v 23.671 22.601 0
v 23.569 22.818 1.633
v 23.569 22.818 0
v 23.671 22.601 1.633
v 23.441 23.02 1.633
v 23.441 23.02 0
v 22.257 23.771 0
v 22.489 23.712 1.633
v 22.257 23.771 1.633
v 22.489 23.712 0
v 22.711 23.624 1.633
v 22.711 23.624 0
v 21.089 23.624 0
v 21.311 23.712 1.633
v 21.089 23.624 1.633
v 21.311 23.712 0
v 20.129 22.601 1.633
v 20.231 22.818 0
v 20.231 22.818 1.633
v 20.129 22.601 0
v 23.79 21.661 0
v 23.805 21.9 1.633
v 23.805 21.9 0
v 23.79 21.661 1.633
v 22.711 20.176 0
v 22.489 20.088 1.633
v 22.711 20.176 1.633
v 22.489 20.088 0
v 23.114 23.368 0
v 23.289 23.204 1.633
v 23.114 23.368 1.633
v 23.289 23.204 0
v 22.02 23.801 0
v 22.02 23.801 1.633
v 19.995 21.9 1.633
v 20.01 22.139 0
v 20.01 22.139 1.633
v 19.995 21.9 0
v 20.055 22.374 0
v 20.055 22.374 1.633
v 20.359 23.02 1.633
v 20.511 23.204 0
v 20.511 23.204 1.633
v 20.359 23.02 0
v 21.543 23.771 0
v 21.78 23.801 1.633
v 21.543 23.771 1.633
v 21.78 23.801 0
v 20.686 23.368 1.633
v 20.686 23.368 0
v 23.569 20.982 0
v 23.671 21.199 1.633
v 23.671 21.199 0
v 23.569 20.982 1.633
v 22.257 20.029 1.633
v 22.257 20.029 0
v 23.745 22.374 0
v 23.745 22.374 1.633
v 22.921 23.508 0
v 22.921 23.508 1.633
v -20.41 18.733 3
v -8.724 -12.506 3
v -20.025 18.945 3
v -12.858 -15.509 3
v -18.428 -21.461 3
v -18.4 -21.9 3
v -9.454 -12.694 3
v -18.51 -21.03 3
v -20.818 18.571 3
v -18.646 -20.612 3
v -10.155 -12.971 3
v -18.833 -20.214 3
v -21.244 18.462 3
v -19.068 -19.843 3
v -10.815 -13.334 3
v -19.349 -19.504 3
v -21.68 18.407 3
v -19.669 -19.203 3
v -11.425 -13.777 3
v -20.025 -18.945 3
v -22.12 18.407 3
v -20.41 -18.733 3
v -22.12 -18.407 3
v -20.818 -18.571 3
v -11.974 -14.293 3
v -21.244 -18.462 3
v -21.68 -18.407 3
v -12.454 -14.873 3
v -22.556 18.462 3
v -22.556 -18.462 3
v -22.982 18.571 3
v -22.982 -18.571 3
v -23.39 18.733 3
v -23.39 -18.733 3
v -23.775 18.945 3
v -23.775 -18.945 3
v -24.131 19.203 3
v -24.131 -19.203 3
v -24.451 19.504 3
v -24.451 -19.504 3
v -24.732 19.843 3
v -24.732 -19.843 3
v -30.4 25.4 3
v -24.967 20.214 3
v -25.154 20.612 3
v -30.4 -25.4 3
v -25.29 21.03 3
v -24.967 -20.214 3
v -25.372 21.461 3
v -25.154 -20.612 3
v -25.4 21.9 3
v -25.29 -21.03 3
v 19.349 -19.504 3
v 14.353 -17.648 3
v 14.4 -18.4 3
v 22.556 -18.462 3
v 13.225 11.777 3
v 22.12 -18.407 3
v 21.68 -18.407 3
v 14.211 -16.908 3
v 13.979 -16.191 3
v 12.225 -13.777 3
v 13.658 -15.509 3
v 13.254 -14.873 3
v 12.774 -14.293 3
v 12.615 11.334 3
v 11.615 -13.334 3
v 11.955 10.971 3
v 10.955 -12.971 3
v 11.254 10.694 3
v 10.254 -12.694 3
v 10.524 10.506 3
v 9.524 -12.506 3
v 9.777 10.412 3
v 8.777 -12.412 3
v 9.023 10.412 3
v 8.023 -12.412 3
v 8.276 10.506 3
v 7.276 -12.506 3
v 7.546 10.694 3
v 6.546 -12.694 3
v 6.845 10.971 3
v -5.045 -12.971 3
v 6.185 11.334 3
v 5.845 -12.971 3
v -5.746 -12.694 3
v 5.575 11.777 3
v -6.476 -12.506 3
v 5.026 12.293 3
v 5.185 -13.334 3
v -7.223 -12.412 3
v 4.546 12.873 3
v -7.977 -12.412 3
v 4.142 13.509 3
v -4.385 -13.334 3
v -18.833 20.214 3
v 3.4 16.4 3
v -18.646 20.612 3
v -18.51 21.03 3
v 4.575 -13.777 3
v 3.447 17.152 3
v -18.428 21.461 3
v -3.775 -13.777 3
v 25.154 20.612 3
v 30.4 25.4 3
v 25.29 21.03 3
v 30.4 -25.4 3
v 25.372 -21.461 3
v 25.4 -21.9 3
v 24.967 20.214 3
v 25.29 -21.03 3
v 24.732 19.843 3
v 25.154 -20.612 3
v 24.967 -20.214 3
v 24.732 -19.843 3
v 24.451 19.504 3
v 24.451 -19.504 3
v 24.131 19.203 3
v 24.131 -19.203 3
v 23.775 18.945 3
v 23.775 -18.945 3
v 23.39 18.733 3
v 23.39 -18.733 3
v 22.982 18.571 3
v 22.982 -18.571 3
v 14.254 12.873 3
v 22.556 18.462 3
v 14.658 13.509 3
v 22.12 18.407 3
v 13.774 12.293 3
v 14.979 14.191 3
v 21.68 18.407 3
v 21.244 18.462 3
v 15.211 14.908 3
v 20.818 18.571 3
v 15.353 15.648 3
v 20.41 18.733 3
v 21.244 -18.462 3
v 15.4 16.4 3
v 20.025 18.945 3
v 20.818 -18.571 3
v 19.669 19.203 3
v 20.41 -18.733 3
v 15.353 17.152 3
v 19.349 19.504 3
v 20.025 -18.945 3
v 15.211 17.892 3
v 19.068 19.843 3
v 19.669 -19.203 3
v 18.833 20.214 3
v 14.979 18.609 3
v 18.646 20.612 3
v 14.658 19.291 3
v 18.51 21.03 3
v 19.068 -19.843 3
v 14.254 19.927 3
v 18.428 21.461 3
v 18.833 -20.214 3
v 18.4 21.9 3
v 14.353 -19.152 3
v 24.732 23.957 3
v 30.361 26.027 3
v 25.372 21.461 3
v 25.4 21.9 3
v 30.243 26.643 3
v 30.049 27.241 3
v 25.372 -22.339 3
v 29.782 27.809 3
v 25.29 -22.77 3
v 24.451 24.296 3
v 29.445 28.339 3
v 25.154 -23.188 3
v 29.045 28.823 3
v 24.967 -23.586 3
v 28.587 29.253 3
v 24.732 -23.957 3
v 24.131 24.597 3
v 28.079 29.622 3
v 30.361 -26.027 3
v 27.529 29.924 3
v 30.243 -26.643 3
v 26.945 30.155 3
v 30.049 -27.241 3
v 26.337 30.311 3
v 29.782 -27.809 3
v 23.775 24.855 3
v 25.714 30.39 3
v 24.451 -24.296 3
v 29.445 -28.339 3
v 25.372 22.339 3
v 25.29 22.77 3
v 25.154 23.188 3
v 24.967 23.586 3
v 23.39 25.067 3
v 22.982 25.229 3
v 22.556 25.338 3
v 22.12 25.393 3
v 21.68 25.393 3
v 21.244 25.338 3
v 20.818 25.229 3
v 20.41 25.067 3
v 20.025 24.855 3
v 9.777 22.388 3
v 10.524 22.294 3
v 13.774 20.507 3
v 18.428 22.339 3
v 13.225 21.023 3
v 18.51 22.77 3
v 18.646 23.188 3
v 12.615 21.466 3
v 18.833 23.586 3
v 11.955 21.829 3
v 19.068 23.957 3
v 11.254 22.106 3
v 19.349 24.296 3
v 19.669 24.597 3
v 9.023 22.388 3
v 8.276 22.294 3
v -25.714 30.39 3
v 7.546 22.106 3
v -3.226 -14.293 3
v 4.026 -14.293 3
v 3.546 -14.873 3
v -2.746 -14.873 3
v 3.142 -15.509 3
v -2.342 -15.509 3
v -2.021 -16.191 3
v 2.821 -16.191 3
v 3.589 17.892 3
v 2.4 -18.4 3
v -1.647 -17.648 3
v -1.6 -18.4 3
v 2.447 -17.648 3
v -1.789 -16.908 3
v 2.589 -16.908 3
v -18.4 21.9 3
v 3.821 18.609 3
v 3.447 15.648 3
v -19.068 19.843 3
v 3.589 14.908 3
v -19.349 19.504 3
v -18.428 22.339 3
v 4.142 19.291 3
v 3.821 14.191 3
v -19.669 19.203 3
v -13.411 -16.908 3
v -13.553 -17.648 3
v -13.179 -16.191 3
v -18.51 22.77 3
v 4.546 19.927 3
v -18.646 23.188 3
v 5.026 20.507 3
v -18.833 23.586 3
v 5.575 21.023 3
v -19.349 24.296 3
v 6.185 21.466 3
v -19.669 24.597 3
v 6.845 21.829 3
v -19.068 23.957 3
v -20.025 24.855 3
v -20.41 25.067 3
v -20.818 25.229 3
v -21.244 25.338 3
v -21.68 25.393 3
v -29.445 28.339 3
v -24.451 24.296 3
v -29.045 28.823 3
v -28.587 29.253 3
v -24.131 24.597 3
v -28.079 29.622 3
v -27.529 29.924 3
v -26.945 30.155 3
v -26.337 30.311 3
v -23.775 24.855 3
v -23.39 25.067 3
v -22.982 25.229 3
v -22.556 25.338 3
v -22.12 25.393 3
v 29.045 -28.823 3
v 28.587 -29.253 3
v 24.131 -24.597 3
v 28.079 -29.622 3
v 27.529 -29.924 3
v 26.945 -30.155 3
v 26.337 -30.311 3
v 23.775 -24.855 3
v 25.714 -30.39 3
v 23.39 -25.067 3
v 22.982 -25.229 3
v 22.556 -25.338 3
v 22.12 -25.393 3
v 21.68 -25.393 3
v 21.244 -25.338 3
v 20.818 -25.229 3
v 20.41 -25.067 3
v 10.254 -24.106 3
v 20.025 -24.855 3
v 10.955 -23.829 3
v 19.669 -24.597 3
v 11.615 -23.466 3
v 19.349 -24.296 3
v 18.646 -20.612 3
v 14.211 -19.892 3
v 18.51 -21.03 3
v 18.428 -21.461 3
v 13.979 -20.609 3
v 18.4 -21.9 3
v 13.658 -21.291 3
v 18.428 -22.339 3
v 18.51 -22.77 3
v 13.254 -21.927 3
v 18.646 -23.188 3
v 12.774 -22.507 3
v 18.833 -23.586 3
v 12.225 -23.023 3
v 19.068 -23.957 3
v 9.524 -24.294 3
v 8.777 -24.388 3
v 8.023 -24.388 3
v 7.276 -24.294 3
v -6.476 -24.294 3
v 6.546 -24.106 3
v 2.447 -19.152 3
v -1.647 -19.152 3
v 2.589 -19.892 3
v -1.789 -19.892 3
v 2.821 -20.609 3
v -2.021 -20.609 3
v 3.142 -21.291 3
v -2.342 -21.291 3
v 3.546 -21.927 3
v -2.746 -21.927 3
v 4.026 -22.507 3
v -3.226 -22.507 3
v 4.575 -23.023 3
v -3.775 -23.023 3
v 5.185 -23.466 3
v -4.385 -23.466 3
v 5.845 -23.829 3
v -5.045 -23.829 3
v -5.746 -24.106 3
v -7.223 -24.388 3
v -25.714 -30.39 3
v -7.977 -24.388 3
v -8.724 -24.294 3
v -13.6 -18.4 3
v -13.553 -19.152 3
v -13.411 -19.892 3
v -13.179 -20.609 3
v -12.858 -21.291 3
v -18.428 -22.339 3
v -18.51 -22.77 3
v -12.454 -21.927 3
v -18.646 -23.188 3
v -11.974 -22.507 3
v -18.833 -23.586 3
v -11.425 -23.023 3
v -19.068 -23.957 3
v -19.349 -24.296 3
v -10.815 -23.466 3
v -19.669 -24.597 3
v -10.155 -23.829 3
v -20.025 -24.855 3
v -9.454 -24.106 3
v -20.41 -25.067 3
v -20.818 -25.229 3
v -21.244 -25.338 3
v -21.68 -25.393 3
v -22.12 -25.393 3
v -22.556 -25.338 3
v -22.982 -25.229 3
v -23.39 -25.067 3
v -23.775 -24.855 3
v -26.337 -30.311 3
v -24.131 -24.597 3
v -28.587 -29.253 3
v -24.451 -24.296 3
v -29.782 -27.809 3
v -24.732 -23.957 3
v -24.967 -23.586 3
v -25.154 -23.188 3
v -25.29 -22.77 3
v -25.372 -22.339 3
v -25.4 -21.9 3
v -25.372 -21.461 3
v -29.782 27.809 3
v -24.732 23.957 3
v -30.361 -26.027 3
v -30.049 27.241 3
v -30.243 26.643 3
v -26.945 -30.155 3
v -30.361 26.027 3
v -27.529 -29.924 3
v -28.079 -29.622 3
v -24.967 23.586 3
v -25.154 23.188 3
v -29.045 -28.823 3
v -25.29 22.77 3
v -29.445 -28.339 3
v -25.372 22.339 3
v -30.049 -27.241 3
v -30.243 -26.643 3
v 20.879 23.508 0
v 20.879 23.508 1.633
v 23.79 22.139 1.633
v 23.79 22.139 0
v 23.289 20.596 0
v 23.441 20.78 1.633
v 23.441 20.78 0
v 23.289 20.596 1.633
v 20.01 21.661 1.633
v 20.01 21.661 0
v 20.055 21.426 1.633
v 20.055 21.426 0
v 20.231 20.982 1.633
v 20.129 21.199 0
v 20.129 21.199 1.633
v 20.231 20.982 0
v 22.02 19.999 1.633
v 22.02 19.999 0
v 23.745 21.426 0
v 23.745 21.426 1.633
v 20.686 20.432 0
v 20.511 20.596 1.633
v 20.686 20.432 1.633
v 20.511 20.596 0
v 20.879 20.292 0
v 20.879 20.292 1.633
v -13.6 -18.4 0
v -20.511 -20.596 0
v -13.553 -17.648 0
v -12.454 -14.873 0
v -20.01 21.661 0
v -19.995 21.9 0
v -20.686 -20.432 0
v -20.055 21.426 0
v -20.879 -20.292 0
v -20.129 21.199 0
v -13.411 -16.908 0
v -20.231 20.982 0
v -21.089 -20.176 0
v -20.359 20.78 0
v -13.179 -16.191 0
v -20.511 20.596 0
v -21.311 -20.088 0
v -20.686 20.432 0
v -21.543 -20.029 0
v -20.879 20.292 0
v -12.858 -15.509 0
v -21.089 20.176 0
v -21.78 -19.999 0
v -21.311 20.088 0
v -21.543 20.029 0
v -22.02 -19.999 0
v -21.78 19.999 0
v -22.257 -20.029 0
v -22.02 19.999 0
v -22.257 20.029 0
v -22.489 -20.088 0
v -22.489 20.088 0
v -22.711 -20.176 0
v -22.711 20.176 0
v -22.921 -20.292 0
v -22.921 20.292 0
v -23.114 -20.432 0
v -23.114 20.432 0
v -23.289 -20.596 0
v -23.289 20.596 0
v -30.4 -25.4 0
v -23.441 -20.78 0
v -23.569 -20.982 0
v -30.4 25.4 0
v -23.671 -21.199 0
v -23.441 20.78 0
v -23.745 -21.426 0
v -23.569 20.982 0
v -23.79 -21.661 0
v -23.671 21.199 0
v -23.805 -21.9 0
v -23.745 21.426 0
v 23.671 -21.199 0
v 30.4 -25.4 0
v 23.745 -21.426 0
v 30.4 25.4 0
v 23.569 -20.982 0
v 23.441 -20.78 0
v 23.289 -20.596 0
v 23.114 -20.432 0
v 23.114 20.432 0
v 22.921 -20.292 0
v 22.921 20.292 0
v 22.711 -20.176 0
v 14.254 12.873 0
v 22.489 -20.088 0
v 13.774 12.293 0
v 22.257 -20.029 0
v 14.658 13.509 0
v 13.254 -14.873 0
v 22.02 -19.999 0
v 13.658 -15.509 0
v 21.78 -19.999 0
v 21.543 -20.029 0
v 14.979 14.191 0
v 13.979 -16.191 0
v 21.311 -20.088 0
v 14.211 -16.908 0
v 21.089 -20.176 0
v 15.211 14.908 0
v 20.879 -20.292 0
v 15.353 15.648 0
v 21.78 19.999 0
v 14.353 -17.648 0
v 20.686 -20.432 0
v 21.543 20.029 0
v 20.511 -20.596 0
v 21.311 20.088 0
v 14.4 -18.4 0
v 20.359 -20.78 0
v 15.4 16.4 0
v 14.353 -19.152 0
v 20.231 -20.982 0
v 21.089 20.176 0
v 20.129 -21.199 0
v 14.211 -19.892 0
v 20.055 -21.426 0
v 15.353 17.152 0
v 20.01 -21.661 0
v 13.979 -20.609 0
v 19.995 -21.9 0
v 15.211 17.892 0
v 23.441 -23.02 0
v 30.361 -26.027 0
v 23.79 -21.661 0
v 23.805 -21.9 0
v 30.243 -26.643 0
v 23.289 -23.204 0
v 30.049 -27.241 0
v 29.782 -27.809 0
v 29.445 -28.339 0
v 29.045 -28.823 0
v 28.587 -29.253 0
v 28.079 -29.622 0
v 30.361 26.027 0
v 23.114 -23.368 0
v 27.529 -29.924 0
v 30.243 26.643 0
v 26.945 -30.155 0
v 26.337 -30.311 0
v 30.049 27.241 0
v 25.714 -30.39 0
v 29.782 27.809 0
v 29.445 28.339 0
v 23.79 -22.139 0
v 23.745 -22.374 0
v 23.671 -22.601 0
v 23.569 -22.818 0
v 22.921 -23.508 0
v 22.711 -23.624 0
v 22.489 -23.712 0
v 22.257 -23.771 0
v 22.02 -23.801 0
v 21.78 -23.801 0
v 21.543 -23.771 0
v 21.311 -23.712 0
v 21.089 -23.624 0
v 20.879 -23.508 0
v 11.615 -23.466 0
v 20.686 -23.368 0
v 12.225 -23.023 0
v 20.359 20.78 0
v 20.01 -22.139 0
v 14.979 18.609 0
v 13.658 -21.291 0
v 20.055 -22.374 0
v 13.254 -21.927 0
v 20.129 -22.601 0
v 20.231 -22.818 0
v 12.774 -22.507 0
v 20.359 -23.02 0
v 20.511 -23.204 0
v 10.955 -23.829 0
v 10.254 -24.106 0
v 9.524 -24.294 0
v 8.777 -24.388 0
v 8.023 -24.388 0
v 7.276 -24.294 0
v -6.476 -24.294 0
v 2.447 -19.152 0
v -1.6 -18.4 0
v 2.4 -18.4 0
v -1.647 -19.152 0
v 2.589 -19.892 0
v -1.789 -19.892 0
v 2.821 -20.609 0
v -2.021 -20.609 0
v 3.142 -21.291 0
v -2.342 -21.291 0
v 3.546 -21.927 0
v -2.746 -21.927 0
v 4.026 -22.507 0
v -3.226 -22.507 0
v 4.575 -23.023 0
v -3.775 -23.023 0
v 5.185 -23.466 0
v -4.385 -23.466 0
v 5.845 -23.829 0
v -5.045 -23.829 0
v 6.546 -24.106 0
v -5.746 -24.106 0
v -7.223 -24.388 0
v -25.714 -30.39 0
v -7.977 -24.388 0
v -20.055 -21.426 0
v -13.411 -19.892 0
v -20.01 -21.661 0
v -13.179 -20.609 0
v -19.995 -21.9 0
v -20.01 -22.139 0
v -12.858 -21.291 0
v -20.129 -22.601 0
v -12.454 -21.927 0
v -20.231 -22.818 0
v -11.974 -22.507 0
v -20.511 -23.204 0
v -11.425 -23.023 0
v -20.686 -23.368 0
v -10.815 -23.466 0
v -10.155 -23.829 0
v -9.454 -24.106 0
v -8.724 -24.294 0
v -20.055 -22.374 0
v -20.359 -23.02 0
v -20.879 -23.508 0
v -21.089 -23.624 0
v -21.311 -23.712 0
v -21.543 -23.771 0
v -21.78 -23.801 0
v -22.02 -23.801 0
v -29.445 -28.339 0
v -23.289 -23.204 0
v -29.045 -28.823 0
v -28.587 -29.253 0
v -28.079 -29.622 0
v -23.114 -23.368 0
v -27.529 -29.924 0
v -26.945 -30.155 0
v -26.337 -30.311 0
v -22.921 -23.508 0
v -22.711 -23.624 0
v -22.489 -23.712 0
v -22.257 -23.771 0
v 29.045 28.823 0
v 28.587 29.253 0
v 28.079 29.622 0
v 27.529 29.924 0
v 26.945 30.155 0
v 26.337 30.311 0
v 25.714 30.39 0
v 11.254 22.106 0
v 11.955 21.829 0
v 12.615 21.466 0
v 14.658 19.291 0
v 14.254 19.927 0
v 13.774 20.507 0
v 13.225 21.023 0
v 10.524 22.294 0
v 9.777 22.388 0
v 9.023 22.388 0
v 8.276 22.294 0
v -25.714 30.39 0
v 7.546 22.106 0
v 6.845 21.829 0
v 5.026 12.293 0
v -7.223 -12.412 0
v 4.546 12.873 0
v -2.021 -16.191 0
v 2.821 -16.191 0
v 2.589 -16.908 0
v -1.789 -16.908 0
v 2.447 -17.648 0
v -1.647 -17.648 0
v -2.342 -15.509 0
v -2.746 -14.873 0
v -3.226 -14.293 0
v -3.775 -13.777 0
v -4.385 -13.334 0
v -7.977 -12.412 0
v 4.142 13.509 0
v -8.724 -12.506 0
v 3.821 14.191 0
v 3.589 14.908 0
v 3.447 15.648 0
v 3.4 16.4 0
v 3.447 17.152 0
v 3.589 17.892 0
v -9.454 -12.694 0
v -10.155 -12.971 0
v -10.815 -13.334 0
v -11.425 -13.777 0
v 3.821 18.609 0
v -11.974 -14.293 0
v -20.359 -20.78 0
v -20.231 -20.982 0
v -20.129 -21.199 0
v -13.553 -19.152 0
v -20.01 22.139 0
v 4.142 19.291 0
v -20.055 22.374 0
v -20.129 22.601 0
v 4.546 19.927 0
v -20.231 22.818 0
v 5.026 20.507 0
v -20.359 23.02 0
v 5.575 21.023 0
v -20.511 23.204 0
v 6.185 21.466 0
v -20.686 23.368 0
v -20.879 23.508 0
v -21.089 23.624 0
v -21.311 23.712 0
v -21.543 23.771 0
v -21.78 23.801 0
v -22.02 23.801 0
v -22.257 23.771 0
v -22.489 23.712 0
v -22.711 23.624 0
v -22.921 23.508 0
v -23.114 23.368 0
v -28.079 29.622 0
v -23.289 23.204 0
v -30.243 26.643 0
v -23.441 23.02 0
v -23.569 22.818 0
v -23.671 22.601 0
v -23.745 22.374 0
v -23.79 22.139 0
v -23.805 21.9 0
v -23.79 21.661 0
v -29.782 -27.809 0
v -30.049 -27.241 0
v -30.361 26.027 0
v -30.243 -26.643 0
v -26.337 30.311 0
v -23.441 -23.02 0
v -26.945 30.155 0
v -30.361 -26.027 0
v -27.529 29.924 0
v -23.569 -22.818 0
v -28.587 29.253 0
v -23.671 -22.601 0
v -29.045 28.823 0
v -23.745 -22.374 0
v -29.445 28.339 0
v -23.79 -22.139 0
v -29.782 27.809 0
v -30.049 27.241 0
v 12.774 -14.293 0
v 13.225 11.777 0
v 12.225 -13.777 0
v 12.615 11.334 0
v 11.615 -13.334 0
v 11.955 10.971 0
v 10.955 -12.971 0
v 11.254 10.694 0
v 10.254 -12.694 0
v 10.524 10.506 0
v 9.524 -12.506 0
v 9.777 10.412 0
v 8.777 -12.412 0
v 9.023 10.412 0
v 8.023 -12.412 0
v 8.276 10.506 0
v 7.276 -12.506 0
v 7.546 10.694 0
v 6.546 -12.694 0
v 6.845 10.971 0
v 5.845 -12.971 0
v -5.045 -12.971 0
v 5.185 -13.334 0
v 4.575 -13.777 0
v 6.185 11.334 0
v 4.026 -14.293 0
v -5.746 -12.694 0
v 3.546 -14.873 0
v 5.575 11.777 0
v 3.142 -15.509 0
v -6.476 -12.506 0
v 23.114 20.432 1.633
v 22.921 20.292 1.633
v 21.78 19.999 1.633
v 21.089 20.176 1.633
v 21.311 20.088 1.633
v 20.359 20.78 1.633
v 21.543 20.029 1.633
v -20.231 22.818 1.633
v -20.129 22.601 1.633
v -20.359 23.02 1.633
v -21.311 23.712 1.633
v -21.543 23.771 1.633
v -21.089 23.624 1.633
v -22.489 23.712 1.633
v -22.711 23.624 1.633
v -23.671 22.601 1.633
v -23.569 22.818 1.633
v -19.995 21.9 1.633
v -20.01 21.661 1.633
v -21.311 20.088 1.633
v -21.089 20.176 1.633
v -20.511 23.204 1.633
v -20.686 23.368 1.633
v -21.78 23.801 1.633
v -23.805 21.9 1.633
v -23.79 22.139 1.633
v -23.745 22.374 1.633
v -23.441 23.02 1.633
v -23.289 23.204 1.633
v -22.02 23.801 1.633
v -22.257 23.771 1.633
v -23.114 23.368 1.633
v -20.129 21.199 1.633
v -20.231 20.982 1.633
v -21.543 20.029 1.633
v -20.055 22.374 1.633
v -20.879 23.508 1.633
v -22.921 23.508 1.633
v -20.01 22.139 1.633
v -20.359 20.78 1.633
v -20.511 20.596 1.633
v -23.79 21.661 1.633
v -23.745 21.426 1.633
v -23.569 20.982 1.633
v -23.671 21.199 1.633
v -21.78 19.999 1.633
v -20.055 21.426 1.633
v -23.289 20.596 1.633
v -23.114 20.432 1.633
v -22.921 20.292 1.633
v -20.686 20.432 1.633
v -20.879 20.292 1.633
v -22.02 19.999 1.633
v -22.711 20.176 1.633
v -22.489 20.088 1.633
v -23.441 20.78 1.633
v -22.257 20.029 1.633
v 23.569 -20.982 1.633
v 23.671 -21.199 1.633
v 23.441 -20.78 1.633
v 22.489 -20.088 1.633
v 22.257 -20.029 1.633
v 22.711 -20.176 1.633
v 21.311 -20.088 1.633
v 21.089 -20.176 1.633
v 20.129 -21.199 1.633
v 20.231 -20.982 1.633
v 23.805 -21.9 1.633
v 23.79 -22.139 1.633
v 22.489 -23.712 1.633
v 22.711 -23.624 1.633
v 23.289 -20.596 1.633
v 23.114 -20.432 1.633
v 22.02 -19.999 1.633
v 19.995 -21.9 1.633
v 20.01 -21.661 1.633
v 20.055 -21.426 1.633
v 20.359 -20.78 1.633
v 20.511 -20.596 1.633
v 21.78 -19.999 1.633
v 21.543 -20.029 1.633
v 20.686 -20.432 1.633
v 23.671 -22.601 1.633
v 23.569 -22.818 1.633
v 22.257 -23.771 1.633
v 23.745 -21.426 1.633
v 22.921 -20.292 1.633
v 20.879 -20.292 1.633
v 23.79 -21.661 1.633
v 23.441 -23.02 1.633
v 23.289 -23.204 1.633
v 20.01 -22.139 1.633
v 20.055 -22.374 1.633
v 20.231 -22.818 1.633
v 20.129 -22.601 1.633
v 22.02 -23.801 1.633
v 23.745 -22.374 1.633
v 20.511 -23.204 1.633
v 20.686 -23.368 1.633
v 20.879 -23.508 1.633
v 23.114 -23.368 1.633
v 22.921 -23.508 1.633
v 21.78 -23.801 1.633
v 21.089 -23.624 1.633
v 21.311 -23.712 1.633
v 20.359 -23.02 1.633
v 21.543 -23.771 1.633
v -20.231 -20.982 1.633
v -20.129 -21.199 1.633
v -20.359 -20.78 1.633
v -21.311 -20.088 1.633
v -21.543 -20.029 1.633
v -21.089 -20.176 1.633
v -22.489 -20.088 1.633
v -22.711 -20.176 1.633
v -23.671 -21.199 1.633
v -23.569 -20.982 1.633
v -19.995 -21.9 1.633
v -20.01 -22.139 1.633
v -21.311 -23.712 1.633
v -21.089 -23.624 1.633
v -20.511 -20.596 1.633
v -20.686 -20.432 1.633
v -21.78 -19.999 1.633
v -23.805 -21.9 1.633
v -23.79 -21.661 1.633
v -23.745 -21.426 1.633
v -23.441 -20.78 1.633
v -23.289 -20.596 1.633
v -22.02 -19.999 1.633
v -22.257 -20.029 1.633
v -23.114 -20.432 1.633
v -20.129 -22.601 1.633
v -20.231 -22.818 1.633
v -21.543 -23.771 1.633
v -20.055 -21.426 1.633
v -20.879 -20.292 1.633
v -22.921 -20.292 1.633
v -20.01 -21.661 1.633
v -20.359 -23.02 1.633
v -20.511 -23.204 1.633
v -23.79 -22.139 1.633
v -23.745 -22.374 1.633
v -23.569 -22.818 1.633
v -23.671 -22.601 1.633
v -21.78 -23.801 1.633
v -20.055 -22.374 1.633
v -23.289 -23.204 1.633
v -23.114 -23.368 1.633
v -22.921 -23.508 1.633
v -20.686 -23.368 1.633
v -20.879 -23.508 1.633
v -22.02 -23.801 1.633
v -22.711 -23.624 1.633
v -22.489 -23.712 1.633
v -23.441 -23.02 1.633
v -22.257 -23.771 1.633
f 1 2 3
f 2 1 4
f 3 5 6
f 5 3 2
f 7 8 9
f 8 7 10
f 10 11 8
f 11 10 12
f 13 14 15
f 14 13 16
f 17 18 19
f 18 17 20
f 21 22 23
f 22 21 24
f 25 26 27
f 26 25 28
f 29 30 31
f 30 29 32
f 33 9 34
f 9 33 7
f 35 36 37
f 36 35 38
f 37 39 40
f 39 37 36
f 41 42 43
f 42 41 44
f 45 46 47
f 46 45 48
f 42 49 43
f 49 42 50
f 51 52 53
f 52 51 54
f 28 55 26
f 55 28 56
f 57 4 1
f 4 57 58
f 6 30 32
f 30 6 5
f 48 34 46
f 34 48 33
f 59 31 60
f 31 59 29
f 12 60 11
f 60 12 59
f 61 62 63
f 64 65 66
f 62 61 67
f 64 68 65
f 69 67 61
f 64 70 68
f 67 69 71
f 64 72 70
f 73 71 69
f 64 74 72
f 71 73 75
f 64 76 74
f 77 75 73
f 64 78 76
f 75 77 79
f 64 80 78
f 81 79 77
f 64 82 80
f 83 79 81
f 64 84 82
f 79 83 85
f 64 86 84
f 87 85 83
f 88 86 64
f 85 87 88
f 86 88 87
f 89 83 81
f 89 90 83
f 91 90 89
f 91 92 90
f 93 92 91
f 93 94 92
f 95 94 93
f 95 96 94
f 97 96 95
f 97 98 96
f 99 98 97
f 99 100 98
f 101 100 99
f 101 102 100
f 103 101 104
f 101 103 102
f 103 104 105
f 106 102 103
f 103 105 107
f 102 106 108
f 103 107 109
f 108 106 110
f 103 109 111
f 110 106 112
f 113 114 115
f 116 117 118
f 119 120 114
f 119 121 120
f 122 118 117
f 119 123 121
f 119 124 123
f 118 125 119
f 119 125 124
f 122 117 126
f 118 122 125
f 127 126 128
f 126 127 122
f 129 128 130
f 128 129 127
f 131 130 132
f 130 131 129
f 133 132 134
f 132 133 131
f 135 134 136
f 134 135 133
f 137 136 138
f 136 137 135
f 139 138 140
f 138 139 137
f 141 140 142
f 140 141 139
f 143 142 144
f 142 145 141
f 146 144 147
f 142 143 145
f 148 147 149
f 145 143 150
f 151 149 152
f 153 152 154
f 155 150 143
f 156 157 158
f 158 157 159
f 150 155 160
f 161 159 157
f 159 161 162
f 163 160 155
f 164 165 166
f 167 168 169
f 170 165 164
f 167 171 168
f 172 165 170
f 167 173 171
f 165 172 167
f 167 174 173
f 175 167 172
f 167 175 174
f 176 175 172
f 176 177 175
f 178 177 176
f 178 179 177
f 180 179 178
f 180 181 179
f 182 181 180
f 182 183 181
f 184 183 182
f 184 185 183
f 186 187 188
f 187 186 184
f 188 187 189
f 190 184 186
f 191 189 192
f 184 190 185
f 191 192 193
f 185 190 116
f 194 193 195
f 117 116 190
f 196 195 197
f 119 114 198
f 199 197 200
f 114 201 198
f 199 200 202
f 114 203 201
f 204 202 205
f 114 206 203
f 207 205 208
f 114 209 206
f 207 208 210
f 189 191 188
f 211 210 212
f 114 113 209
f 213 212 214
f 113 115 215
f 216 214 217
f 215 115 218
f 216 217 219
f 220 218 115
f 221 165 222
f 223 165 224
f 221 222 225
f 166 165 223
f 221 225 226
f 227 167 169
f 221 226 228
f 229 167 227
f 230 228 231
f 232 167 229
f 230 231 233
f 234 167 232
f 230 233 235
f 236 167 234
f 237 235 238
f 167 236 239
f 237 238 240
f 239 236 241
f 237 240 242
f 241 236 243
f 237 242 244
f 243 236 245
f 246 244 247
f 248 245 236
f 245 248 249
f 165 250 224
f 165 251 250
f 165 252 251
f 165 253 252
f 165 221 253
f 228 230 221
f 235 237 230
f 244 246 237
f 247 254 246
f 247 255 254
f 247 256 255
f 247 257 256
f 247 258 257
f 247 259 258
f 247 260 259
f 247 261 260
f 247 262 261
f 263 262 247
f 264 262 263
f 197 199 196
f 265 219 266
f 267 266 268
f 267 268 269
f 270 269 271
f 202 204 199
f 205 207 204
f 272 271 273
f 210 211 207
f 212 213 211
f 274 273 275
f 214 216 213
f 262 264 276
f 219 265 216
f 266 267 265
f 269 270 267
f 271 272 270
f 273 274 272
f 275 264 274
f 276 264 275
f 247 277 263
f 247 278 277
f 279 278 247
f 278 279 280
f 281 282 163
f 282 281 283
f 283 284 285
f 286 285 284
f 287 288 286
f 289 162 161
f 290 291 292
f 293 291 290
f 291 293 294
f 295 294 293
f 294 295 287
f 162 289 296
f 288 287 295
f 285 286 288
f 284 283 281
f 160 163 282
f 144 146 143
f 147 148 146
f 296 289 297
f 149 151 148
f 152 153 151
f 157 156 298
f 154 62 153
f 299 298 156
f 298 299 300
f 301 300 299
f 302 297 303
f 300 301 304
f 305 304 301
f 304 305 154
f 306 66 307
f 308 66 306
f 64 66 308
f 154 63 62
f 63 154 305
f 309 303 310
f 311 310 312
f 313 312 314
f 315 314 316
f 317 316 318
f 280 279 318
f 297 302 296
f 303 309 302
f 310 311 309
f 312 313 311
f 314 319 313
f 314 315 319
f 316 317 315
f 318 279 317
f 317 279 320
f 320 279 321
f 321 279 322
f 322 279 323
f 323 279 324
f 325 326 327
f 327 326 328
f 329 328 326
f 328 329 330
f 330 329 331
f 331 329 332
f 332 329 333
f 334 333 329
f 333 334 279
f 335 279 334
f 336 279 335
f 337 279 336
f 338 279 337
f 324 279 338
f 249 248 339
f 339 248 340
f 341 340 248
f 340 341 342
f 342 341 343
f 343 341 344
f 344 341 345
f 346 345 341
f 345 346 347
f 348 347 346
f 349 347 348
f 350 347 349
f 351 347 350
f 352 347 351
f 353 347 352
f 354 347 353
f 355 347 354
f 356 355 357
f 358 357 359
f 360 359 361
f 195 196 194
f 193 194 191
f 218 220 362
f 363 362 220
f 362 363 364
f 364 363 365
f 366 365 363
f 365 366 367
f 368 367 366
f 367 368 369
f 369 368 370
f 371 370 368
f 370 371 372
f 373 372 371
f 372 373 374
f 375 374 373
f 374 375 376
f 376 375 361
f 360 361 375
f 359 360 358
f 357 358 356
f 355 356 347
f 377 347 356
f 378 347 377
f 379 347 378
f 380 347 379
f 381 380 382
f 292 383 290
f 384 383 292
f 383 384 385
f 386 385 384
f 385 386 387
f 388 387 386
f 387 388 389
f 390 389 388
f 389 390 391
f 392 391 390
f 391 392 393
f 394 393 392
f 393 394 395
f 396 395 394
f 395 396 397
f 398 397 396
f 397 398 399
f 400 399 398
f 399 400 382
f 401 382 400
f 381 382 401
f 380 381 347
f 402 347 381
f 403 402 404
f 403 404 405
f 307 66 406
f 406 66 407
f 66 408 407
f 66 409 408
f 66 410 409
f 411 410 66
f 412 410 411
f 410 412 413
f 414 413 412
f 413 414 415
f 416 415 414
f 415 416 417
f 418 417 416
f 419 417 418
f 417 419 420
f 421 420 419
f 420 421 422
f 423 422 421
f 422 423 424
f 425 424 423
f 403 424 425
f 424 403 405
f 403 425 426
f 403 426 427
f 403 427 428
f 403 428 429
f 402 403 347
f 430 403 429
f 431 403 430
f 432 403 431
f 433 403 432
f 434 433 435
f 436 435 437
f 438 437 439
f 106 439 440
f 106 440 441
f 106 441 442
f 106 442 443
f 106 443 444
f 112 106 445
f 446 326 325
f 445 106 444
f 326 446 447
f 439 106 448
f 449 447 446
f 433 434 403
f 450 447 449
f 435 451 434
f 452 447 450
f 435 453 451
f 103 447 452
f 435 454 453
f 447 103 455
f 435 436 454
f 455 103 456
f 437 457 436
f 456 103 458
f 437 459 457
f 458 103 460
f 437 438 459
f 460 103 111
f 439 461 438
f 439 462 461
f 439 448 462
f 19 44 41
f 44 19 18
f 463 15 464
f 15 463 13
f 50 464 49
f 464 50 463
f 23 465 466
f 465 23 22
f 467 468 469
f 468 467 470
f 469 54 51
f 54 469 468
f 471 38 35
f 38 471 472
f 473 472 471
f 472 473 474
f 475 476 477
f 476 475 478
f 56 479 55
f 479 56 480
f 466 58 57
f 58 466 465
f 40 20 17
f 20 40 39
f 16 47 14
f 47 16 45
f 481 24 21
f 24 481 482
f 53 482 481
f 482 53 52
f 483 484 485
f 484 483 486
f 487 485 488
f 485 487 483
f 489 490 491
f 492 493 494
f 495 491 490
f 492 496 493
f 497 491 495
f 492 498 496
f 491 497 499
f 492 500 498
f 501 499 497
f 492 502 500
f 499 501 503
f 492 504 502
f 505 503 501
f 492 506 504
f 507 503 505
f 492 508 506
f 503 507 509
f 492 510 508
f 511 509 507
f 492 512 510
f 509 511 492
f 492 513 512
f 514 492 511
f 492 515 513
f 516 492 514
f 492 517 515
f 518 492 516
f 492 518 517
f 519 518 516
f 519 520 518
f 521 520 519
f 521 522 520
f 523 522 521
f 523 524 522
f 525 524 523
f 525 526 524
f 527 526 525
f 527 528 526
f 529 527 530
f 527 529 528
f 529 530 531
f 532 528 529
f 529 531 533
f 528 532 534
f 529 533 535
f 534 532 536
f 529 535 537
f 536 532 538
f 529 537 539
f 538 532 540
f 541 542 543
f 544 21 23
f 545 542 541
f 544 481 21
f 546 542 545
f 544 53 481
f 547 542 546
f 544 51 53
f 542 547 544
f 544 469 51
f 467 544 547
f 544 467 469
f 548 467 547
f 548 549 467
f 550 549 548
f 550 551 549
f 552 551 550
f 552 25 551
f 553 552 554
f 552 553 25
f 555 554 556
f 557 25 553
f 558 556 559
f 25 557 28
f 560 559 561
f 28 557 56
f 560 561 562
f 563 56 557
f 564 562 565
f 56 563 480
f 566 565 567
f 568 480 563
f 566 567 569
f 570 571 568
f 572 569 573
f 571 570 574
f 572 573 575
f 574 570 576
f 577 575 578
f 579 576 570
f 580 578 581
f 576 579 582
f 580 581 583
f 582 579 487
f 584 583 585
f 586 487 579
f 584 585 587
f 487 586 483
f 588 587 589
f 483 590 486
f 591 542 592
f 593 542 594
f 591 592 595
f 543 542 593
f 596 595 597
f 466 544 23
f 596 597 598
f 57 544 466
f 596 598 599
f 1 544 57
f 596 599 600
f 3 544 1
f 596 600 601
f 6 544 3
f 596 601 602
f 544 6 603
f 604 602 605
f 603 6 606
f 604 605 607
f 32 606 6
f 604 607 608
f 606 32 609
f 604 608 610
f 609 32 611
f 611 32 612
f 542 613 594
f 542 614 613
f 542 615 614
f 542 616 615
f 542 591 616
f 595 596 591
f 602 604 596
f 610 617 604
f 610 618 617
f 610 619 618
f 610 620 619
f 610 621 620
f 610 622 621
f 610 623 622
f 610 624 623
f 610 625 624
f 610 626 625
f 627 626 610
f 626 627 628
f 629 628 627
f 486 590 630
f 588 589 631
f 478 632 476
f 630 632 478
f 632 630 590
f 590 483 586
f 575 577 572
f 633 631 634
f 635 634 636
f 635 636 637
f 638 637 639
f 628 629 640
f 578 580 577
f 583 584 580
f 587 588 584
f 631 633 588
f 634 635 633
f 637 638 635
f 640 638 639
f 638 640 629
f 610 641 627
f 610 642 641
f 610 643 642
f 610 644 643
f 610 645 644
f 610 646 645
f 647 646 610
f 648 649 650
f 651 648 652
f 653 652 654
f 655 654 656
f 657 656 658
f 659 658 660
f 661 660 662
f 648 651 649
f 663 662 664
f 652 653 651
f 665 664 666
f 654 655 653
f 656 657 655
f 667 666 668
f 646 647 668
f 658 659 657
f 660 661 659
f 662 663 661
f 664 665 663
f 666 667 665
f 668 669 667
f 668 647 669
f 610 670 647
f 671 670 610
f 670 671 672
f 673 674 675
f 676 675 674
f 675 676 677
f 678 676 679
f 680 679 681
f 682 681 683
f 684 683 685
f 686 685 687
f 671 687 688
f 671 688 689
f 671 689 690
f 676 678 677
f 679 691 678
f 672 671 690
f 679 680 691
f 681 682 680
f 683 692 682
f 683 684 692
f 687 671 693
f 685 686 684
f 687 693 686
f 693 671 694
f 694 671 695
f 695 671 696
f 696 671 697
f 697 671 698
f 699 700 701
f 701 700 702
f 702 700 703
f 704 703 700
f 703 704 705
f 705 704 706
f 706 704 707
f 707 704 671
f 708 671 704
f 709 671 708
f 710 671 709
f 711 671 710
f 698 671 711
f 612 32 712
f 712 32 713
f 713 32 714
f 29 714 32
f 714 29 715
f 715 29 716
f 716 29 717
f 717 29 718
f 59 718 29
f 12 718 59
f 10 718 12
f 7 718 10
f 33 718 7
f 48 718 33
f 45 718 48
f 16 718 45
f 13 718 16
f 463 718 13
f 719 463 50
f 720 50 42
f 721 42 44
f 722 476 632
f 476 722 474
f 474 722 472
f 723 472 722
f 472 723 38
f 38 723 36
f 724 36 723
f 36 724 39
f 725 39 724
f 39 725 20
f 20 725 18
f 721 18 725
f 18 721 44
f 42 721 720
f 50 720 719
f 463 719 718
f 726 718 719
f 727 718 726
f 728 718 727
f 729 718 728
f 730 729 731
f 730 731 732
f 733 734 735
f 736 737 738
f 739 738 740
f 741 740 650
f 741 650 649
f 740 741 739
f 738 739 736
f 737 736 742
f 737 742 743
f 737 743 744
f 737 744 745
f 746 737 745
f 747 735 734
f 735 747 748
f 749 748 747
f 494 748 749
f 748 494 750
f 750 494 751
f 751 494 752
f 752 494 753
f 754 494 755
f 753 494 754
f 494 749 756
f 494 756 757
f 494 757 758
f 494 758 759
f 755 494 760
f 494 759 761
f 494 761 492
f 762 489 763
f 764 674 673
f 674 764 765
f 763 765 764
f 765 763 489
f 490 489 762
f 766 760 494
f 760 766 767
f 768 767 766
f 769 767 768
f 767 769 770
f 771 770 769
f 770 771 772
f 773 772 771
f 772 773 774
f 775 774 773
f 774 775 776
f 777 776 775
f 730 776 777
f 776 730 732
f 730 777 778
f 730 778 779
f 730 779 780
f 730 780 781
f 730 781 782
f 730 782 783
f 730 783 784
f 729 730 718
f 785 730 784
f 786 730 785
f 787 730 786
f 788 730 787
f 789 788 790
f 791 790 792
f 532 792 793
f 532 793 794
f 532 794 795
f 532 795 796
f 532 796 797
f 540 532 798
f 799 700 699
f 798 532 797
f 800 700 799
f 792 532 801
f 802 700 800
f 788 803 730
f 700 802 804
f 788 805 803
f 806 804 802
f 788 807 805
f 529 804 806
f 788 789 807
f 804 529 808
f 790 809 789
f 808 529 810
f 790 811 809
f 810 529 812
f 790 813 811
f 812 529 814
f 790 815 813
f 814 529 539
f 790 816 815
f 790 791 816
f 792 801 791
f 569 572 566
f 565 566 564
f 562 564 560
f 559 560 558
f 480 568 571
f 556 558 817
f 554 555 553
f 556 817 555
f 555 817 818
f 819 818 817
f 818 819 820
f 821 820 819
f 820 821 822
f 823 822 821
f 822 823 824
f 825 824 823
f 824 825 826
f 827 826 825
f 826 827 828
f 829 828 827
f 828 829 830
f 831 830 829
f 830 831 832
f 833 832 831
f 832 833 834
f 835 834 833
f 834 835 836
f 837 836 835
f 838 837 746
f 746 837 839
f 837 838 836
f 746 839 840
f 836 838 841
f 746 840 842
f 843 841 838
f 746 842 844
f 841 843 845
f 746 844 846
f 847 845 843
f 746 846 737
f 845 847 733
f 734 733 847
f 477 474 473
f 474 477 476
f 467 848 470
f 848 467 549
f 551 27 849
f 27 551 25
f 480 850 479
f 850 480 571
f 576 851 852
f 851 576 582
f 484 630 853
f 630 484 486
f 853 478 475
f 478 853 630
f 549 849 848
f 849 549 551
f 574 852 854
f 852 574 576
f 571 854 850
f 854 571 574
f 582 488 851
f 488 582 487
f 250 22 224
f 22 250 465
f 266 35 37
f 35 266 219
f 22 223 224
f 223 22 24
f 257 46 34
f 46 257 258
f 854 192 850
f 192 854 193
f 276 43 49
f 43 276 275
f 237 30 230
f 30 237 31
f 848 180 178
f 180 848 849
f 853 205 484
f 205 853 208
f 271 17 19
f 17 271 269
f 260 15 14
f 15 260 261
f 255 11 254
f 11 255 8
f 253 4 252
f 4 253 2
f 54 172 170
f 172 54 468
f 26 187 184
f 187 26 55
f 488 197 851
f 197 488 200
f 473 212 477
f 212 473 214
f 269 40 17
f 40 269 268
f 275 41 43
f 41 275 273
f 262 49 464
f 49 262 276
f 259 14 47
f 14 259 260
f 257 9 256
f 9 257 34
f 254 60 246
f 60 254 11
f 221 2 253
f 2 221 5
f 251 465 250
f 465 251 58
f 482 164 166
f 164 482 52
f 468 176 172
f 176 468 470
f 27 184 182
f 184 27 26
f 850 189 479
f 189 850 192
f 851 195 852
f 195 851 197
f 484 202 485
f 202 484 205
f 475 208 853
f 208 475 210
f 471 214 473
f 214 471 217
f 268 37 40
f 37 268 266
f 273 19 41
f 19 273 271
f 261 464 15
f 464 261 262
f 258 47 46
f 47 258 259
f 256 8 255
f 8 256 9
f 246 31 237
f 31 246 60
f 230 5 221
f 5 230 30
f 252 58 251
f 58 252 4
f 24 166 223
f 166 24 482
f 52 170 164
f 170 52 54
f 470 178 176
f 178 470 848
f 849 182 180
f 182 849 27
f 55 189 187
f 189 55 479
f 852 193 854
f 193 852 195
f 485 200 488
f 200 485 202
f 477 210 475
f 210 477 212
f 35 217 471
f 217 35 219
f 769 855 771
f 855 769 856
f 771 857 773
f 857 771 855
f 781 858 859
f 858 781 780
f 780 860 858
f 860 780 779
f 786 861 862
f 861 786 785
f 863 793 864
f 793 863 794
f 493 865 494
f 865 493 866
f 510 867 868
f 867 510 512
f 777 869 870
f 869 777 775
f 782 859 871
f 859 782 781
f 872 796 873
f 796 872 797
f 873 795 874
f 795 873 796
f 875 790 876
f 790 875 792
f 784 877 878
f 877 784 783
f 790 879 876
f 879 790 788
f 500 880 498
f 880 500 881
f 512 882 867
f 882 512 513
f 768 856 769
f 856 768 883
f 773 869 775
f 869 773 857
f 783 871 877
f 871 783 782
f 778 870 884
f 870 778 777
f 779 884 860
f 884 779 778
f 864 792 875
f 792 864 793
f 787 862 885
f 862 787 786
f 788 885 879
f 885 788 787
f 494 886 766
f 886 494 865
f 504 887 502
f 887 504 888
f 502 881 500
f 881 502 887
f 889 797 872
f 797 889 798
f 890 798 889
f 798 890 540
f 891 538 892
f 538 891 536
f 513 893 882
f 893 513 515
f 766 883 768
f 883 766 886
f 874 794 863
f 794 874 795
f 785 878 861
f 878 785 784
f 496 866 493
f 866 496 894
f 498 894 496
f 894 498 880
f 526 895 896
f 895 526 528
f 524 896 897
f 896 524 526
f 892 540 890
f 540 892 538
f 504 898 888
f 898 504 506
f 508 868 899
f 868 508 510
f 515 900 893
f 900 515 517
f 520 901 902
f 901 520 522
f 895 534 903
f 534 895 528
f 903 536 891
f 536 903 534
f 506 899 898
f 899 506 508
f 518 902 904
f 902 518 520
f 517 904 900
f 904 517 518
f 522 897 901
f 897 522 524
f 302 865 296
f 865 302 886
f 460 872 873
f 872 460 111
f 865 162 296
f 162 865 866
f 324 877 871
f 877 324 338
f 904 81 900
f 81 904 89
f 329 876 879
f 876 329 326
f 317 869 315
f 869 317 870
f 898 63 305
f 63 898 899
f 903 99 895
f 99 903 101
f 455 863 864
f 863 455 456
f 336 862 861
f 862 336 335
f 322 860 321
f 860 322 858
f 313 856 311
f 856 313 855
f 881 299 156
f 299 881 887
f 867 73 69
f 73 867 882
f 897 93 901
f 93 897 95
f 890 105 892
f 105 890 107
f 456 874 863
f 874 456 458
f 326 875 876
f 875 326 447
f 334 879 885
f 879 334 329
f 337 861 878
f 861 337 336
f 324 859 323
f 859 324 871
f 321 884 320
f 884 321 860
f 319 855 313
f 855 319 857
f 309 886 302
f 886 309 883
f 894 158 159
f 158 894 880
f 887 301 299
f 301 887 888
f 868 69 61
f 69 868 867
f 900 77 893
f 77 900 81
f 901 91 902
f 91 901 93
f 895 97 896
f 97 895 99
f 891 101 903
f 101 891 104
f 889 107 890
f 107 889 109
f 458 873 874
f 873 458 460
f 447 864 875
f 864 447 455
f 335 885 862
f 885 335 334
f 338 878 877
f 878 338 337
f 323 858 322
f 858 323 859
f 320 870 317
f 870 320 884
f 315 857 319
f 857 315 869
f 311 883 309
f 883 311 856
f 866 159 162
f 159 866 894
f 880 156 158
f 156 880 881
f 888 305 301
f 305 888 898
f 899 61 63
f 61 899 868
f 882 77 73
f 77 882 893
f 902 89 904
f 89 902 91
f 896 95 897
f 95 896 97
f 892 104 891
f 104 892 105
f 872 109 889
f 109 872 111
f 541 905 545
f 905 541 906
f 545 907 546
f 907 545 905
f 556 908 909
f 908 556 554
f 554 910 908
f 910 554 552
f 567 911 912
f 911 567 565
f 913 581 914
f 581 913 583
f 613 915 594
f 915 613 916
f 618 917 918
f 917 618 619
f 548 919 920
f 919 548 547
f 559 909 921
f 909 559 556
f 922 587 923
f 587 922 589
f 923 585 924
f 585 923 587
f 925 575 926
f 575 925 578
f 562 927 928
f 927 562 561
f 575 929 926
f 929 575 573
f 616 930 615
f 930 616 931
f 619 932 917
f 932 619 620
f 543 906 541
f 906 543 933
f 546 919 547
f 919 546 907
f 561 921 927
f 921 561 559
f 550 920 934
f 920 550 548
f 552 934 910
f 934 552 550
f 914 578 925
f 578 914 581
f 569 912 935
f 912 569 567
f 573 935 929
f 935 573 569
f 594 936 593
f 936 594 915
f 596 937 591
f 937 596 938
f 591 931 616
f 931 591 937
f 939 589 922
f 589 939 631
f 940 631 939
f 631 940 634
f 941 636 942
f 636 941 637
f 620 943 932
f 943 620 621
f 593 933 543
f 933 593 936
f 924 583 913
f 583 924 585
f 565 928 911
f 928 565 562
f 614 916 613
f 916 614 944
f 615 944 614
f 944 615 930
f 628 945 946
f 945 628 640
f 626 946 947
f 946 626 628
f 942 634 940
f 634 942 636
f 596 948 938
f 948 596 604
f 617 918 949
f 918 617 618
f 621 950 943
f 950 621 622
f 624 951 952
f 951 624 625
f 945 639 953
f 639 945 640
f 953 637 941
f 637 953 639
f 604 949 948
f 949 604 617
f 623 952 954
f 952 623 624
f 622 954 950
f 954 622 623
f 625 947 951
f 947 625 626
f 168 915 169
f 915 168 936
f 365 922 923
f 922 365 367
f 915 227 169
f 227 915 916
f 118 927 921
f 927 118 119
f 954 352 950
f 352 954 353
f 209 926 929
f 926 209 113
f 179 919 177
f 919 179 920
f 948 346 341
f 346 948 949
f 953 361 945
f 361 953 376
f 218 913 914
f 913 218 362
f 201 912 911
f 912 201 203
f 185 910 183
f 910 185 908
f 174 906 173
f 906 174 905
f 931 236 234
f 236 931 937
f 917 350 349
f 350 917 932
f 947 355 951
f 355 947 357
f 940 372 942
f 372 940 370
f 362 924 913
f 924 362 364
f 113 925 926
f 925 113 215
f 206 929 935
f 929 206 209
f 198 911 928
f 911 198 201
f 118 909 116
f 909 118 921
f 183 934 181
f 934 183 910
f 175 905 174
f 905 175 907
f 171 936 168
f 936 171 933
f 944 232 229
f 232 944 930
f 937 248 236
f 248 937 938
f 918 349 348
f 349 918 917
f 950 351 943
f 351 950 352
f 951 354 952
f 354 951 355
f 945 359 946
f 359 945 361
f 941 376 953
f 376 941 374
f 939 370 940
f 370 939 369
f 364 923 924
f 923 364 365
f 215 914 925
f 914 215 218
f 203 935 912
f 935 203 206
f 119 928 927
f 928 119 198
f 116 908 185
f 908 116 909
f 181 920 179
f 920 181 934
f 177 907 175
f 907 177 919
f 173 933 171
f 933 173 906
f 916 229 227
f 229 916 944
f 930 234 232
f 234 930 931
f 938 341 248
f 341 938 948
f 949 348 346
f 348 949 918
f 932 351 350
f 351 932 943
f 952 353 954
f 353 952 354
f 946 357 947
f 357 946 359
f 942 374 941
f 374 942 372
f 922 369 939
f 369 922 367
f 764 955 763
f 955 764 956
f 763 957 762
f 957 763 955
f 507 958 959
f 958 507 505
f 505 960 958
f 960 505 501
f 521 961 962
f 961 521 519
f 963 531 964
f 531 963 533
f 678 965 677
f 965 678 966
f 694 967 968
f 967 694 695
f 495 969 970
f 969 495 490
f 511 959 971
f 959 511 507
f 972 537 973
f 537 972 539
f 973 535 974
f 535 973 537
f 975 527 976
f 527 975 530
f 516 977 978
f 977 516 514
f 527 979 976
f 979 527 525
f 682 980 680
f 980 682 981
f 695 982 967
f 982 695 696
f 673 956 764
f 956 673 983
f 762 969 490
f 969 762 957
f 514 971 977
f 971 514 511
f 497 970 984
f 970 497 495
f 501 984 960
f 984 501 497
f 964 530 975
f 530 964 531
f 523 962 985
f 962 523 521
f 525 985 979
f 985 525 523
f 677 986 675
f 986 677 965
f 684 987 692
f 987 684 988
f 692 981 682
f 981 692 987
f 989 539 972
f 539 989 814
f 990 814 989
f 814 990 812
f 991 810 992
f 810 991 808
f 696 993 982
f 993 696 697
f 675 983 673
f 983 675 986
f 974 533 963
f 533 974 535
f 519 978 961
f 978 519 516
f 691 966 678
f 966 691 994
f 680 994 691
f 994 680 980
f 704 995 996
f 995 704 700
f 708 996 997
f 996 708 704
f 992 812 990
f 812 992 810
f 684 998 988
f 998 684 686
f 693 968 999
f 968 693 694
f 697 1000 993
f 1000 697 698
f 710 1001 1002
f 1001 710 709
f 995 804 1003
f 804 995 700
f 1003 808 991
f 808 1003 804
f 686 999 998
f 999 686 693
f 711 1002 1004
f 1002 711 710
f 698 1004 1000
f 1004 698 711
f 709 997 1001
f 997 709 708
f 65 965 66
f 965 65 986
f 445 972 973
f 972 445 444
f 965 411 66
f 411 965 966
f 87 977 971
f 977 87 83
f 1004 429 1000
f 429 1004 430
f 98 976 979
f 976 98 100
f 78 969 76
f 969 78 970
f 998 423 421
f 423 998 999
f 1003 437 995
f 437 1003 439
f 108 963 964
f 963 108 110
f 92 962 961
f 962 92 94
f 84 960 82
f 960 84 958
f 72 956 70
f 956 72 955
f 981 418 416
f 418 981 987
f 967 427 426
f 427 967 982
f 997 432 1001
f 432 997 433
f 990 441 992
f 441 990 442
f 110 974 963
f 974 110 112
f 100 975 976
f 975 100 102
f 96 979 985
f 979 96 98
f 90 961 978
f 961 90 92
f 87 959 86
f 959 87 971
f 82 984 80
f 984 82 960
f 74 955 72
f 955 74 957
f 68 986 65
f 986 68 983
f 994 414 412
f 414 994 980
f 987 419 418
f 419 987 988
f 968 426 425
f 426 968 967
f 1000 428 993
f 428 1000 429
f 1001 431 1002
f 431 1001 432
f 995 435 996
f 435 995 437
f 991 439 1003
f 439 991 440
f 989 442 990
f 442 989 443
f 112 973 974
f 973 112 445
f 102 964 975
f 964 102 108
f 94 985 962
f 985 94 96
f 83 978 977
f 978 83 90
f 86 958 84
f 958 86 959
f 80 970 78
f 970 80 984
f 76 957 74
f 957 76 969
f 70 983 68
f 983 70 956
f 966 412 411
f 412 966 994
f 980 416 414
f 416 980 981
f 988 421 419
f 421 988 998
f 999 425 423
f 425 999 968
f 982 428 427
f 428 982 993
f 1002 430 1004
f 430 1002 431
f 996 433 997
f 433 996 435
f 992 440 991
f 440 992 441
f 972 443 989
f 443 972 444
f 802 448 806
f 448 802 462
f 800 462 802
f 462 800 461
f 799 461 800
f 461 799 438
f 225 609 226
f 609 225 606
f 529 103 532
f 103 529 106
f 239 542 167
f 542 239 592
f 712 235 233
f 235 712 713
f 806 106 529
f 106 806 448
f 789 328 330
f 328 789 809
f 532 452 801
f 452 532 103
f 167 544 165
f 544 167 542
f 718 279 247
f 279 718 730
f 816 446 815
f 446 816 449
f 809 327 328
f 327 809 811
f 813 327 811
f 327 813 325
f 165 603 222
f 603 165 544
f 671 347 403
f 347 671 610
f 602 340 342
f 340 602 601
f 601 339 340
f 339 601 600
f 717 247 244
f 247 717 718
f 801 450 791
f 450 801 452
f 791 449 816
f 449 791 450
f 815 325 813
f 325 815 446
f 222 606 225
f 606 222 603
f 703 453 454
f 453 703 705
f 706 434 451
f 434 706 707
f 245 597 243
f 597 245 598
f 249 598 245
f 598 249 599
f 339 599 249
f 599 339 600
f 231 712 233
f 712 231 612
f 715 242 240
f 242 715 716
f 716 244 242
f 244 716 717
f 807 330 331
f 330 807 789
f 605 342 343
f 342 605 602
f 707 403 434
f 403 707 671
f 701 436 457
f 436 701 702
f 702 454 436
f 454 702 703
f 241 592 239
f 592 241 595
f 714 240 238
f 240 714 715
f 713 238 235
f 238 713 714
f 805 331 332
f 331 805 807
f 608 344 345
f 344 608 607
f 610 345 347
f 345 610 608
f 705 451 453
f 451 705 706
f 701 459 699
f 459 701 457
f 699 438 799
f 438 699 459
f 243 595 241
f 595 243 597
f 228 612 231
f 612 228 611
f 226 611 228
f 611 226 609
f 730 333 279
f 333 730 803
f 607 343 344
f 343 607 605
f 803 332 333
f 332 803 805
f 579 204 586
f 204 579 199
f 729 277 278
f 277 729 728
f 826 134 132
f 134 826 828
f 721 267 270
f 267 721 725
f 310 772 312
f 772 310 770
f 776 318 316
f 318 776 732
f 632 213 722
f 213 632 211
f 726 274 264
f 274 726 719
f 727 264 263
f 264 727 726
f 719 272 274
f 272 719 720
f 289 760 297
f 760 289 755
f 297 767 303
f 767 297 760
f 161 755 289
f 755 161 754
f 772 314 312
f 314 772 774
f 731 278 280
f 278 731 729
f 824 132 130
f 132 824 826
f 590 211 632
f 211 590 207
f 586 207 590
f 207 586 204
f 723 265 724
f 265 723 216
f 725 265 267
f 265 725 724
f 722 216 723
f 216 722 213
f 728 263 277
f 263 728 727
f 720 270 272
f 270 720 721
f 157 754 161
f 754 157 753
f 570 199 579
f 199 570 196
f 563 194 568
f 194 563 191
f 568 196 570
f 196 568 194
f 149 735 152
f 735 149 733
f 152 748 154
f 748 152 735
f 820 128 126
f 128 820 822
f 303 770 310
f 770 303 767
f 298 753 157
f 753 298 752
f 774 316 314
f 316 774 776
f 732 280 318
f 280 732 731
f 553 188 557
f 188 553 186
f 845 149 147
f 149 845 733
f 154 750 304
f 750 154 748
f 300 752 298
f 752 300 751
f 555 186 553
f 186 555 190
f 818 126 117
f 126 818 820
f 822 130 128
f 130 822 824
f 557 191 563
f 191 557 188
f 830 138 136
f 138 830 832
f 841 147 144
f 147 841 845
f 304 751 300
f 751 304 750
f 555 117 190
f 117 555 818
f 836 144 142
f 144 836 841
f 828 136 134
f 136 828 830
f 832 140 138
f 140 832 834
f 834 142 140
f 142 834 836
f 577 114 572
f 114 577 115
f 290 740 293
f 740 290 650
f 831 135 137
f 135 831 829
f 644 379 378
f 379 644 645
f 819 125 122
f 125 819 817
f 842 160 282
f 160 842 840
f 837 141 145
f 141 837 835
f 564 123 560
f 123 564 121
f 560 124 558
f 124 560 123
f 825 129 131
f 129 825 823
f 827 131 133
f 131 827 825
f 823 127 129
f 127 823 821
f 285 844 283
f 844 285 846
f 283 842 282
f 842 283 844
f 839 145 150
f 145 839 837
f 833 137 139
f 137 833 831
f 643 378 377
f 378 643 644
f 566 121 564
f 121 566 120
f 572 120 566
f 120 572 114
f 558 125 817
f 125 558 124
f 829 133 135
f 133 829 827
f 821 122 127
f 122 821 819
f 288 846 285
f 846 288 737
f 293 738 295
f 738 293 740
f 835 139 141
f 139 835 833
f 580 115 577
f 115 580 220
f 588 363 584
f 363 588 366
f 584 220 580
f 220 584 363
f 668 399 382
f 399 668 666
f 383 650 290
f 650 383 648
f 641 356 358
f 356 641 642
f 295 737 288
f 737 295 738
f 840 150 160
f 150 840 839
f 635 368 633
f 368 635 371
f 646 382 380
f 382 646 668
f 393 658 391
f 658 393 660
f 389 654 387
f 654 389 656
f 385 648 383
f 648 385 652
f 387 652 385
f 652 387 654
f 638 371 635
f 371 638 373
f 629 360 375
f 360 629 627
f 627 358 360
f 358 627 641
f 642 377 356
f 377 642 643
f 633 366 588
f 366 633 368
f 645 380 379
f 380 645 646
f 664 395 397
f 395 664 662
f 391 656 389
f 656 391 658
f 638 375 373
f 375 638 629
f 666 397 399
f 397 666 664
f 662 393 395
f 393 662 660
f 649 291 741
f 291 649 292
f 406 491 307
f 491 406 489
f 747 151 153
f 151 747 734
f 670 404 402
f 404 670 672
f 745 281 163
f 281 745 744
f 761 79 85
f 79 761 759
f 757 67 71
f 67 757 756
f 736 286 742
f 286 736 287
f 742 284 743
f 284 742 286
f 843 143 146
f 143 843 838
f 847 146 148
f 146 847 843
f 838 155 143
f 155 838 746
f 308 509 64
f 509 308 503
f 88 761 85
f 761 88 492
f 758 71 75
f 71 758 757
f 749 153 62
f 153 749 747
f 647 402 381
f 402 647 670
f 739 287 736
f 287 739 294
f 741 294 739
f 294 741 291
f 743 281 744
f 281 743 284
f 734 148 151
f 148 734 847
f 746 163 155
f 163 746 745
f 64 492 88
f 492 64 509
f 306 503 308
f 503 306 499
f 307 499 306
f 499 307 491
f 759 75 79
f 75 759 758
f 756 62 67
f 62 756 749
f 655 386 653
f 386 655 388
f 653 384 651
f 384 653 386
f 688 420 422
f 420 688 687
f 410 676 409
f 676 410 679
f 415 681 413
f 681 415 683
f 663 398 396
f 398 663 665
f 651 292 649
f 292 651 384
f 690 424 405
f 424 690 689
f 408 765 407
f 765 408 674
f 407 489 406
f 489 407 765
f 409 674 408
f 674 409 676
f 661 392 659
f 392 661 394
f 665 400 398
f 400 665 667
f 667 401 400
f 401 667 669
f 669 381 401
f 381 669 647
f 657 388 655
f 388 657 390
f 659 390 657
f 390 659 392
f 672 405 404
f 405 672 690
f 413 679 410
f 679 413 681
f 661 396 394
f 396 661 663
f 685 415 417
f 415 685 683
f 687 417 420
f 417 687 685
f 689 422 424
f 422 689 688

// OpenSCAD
$fn=50;
inch = 25.4;

// center to center dimensions
mw = 2*inch;  // mounting width
mh = 2*inch;  // mounting width
bw = 43.8;  // board width
bh = 43.8;  // board height

br = 6; // banana plug opening

// hole diameters
md = 0.28*inch;  // mounting hole diameter
bd = 0.15*inch;  // board hole diameter

module roundedRect(size, radius) {
  x = size[0];
  y = size[1];  // what was I thinking again??

  z = size[2];
  linear_extrude(height=z)
  hull() {
    // place 4 circles in the corners, with the given radius
    translate([(-x/2)+radius, (-y/2)+radius, 0])
    circle(r=radius);
    translate([(x/2)-radius, (-y/2)+radius, 0])
    circle(r=radius);
    translate([(-x/2) + radius, (y/2)-radius, 0])
    circle(r=radius);
    translate([(x/2)-radius, (y/2)-radius, 0])
    circle(r=radius);
  }
}

module counterSunk(position, radius) {
  union() {
    translate(position)
    union() {
      cylinder(3, radius, radius, 8, center=false);
      cylinder(3, 0, 3.5, center=false);
    }
  }
}

// plate itself
difference() {
  // positive rectangle
  roundedRect([mw + 10, mh + 10, 3], 5, center=false);
  // four board holes
  union() {
    counterSunk([bw/2, bh/2, 0], bd/2);
    counterSunk([-bw/2, bh/2, 0], bd/2);
    counterSunk([bw/2, -bh/2, 0], bd/2);
    counterSunk([-bw/2, -bh/2, 0], bd/2);
  }
  // three banana plug holes
  translate([mw/2-16, mh/2-9, 0])
  cylinder(3, br, br, center=false);
  translate([mw/2-17, -mh/2+7, 0])
  cylinder(3, br, br, center=false);
  translate([mw/2-33, -mh/2+7, 0])
  cylinder(3, br, br, center=false);
}
